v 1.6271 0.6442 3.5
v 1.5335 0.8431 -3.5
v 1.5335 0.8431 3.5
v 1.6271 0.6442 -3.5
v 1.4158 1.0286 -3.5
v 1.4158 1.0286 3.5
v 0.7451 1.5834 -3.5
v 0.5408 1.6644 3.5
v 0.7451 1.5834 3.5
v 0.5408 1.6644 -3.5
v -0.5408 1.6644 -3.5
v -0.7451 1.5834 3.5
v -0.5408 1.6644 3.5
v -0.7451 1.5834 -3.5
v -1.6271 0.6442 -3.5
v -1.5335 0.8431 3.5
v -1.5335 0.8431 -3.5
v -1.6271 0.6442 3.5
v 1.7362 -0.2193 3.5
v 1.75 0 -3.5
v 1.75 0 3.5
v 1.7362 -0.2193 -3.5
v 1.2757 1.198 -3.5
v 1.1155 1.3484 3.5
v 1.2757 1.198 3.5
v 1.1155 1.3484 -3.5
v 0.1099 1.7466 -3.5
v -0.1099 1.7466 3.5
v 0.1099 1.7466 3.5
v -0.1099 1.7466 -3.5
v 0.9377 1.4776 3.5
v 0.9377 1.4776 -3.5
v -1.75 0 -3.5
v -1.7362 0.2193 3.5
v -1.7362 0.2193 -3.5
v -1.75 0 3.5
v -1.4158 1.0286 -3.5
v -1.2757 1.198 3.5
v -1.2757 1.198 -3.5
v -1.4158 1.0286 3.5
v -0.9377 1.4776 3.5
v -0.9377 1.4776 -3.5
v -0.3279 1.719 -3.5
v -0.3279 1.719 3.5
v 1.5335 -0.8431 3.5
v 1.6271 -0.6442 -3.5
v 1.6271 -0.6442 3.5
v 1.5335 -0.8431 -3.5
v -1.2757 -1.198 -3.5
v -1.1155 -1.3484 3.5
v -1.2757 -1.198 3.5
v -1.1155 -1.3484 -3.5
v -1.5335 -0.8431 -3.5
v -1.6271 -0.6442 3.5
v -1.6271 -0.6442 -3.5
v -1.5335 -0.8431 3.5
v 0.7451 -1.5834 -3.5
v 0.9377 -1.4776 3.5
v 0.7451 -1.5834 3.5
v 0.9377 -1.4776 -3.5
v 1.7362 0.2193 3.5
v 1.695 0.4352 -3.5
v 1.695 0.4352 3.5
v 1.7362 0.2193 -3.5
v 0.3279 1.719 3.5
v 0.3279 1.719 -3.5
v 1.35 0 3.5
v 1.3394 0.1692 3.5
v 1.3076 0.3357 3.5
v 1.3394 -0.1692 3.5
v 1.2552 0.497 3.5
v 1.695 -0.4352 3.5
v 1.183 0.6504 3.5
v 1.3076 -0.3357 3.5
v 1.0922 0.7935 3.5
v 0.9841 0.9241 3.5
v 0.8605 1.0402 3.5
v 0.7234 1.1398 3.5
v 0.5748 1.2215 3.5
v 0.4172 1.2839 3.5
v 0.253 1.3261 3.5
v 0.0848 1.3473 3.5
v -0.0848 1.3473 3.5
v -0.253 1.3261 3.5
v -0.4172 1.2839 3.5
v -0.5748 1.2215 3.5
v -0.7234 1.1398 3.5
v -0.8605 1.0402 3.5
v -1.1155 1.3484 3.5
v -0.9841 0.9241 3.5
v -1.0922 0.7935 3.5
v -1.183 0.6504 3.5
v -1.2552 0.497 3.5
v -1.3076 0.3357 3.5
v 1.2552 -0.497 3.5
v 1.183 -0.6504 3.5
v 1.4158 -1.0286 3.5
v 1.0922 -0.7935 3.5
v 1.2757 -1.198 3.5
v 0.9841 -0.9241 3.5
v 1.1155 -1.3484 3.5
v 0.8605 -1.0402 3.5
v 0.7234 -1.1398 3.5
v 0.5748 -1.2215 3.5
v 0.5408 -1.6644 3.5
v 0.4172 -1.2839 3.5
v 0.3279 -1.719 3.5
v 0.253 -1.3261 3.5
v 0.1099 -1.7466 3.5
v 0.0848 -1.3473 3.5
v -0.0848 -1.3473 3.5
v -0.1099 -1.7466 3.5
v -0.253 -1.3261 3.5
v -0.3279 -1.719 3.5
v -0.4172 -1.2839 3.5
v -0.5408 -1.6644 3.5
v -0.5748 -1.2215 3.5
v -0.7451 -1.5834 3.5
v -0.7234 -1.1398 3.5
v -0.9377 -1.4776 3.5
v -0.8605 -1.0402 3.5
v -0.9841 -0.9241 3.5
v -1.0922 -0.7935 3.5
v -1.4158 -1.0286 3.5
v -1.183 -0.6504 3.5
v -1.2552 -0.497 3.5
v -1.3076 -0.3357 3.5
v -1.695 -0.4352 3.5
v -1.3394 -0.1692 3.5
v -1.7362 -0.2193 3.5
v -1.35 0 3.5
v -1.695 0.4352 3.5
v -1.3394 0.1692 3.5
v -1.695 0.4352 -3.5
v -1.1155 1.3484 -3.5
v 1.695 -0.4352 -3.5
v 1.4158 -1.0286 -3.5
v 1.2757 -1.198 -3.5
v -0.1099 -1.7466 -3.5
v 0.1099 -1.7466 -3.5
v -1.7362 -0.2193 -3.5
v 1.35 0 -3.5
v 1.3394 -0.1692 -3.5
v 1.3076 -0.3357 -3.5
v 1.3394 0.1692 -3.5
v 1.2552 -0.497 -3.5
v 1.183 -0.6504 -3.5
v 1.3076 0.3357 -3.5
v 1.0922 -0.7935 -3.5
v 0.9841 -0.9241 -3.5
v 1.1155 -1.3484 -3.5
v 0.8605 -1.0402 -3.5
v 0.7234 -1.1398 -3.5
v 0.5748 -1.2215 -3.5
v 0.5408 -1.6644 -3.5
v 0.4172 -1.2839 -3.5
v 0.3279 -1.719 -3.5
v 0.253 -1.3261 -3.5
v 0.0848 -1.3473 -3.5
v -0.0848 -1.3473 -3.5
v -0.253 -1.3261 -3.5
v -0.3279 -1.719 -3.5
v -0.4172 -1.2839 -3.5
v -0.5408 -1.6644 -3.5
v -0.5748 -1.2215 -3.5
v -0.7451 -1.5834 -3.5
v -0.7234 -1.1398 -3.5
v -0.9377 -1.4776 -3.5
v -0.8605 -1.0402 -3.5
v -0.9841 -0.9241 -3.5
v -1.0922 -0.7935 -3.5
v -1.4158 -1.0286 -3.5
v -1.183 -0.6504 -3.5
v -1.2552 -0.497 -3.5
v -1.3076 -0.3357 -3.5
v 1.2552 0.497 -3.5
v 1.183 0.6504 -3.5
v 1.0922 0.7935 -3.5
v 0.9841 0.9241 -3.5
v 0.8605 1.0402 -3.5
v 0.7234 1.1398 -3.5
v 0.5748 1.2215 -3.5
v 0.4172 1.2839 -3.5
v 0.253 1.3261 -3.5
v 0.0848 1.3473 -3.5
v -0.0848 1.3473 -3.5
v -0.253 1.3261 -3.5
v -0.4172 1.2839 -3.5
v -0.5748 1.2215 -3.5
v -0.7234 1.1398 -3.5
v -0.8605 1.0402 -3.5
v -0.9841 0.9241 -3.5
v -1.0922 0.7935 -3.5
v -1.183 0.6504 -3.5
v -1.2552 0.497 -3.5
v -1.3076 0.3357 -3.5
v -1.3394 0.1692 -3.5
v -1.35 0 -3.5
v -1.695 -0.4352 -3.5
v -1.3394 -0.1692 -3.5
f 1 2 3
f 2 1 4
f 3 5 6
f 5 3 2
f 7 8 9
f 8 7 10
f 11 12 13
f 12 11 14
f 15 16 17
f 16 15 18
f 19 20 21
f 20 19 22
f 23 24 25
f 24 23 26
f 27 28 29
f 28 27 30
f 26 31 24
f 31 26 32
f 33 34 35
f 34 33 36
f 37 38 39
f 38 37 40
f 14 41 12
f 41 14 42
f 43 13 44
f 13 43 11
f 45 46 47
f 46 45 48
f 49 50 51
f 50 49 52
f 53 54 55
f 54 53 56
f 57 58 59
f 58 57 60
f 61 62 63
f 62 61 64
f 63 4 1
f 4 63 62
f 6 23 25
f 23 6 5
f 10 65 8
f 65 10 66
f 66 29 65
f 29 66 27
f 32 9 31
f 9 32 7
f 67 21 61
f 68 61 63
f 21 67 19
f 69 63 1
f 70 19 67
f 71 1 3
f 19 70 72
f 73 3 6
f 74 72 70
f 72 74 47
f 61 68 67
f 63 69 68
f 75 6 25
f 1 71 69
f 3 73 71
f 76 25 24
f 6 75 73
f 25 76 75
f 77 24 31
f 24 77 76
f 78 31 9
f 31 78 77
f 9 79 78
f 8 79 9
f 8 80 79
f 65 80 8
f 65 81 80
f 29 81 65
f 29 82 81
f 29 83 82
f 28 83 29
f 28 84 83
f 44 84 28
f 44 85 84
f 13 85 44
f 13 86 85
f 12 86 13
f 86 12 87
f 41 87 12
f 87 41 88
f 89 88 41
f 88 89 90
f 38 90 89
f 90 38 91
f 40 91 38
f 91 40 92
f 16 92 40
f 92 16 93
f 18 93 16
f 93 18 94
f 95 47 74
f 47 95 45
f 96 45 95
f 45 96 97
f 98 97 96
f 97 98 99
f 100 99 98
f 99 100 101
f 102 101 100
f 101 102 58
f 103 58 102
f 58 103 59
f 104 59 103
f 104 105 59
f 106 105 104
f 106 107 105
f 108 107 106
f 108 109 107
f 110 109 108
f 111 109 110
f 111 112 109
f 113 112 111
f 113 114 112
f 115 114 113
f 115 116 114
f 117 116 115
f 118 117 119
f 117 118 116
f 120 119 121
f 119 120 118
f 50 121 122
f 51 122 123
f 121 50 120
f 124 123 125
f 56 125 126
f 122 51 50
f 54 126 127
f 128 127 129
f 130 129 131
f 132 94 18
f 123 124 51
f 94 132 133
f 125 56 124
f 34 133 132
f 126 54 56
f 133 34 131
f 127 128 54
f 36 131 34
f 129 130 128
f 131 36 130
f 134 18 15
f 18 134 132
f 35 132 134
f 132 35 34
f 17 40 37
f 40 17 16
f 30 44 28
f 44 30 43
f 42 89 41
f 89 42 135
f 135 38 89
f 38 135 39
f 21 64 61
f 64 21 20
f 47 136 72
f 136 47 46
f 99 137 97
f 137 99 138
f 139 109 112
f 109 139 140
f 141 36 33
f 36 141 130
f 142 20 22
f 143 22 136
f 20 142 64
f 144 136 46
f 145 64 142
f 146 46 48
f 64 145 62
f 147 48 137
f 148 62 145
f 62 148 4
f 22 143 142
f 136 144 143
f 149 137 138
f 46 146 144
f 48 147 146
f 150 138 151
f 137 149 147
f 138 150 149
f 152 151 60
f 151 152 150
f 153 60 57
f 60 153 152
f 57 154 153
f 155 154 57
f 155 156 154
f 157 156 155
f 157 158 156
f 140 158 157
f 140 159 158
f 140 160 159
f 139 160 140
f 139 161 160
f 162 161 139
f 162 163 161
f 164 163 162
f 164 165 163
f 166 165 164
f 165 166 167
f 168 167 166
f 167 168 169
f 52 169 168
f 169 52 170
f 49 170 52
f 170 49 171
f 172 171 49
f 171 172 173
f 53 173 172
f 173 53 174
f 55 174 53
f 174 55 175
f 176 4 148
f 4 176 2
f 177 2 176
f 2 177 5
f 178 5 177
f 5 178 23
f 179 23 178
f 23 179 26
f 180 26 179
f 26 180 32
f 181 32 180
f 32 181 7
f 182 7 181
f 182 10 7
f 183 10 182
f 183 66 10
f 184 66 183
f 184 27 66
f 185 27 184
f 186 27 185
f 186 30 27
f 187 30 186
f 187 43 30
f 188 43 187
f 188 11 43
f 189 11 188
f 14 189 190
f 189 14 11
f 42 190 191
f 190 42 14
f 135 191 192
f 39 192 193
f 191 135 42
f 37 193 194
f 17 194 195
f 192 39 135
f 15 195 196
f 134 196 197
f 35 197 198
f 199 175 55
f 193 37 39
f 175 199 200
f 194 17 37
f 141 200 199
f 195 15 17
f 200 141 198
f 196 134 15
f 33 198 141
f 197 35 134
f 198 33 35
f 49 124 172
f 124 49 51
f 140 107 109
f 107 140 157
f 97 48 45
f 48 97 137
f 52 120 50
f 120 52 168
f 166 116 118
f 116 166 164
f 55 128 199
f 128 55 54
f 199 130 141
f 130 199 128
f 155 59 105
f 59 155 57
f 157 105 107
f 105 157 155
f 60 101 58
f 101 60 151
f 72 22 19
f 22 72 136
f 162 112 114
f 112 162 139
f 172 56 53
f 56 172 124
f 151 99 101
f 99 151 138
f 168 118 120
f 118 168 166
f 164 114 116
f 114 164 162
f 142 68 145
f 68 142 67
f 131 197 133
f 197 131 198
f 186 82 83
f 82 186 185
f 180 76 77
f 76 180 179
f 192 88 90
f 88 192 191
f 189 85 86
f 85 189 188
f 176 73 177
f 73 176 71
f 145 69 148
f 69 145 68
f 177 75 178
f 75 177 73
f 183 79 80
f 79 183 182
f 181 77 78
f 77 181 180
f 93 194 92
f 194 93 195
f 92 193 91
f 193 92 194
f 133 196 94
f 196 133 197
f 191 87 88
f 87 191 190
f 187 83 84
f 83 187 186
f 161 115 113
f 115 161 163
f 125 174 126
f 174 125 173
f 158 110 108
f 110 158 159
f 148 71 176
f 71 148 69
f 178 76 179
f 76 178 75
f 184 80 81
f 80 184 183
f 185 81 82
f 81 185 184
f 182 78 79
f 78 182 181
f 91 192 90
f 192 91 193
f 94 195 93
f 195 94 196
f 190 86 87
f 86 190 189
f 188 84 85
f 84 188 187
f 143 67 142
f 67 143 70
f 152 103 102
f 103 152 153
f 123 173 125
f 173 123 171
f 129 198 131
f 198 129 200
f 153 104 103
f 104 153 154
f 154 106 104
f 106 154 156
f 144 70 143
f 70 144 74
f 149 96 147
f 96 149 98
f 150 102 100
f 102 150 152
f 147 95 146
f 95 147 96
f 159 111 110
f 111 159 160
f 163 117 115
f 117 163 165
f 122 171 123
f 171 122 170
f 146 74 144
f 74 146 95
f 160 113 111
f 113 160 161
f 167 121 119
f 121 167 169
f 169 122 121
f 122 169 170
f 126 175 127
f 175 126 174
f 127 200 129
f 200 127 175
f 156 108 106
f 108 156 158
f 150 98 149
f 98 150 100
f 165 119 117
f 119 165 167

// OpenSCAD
$fn = 50;


difference() {
	union() {
		translate(v = [0, 0, -3.5000000000]) {
			cylinder(h = 7, r = 1.7500000000);
		}
	}
	union() {
		translate(v = [0, 0, -100.0000000000]) {
			cylinder(h = 200, r = 1.3500000000);
		}
	}
}
